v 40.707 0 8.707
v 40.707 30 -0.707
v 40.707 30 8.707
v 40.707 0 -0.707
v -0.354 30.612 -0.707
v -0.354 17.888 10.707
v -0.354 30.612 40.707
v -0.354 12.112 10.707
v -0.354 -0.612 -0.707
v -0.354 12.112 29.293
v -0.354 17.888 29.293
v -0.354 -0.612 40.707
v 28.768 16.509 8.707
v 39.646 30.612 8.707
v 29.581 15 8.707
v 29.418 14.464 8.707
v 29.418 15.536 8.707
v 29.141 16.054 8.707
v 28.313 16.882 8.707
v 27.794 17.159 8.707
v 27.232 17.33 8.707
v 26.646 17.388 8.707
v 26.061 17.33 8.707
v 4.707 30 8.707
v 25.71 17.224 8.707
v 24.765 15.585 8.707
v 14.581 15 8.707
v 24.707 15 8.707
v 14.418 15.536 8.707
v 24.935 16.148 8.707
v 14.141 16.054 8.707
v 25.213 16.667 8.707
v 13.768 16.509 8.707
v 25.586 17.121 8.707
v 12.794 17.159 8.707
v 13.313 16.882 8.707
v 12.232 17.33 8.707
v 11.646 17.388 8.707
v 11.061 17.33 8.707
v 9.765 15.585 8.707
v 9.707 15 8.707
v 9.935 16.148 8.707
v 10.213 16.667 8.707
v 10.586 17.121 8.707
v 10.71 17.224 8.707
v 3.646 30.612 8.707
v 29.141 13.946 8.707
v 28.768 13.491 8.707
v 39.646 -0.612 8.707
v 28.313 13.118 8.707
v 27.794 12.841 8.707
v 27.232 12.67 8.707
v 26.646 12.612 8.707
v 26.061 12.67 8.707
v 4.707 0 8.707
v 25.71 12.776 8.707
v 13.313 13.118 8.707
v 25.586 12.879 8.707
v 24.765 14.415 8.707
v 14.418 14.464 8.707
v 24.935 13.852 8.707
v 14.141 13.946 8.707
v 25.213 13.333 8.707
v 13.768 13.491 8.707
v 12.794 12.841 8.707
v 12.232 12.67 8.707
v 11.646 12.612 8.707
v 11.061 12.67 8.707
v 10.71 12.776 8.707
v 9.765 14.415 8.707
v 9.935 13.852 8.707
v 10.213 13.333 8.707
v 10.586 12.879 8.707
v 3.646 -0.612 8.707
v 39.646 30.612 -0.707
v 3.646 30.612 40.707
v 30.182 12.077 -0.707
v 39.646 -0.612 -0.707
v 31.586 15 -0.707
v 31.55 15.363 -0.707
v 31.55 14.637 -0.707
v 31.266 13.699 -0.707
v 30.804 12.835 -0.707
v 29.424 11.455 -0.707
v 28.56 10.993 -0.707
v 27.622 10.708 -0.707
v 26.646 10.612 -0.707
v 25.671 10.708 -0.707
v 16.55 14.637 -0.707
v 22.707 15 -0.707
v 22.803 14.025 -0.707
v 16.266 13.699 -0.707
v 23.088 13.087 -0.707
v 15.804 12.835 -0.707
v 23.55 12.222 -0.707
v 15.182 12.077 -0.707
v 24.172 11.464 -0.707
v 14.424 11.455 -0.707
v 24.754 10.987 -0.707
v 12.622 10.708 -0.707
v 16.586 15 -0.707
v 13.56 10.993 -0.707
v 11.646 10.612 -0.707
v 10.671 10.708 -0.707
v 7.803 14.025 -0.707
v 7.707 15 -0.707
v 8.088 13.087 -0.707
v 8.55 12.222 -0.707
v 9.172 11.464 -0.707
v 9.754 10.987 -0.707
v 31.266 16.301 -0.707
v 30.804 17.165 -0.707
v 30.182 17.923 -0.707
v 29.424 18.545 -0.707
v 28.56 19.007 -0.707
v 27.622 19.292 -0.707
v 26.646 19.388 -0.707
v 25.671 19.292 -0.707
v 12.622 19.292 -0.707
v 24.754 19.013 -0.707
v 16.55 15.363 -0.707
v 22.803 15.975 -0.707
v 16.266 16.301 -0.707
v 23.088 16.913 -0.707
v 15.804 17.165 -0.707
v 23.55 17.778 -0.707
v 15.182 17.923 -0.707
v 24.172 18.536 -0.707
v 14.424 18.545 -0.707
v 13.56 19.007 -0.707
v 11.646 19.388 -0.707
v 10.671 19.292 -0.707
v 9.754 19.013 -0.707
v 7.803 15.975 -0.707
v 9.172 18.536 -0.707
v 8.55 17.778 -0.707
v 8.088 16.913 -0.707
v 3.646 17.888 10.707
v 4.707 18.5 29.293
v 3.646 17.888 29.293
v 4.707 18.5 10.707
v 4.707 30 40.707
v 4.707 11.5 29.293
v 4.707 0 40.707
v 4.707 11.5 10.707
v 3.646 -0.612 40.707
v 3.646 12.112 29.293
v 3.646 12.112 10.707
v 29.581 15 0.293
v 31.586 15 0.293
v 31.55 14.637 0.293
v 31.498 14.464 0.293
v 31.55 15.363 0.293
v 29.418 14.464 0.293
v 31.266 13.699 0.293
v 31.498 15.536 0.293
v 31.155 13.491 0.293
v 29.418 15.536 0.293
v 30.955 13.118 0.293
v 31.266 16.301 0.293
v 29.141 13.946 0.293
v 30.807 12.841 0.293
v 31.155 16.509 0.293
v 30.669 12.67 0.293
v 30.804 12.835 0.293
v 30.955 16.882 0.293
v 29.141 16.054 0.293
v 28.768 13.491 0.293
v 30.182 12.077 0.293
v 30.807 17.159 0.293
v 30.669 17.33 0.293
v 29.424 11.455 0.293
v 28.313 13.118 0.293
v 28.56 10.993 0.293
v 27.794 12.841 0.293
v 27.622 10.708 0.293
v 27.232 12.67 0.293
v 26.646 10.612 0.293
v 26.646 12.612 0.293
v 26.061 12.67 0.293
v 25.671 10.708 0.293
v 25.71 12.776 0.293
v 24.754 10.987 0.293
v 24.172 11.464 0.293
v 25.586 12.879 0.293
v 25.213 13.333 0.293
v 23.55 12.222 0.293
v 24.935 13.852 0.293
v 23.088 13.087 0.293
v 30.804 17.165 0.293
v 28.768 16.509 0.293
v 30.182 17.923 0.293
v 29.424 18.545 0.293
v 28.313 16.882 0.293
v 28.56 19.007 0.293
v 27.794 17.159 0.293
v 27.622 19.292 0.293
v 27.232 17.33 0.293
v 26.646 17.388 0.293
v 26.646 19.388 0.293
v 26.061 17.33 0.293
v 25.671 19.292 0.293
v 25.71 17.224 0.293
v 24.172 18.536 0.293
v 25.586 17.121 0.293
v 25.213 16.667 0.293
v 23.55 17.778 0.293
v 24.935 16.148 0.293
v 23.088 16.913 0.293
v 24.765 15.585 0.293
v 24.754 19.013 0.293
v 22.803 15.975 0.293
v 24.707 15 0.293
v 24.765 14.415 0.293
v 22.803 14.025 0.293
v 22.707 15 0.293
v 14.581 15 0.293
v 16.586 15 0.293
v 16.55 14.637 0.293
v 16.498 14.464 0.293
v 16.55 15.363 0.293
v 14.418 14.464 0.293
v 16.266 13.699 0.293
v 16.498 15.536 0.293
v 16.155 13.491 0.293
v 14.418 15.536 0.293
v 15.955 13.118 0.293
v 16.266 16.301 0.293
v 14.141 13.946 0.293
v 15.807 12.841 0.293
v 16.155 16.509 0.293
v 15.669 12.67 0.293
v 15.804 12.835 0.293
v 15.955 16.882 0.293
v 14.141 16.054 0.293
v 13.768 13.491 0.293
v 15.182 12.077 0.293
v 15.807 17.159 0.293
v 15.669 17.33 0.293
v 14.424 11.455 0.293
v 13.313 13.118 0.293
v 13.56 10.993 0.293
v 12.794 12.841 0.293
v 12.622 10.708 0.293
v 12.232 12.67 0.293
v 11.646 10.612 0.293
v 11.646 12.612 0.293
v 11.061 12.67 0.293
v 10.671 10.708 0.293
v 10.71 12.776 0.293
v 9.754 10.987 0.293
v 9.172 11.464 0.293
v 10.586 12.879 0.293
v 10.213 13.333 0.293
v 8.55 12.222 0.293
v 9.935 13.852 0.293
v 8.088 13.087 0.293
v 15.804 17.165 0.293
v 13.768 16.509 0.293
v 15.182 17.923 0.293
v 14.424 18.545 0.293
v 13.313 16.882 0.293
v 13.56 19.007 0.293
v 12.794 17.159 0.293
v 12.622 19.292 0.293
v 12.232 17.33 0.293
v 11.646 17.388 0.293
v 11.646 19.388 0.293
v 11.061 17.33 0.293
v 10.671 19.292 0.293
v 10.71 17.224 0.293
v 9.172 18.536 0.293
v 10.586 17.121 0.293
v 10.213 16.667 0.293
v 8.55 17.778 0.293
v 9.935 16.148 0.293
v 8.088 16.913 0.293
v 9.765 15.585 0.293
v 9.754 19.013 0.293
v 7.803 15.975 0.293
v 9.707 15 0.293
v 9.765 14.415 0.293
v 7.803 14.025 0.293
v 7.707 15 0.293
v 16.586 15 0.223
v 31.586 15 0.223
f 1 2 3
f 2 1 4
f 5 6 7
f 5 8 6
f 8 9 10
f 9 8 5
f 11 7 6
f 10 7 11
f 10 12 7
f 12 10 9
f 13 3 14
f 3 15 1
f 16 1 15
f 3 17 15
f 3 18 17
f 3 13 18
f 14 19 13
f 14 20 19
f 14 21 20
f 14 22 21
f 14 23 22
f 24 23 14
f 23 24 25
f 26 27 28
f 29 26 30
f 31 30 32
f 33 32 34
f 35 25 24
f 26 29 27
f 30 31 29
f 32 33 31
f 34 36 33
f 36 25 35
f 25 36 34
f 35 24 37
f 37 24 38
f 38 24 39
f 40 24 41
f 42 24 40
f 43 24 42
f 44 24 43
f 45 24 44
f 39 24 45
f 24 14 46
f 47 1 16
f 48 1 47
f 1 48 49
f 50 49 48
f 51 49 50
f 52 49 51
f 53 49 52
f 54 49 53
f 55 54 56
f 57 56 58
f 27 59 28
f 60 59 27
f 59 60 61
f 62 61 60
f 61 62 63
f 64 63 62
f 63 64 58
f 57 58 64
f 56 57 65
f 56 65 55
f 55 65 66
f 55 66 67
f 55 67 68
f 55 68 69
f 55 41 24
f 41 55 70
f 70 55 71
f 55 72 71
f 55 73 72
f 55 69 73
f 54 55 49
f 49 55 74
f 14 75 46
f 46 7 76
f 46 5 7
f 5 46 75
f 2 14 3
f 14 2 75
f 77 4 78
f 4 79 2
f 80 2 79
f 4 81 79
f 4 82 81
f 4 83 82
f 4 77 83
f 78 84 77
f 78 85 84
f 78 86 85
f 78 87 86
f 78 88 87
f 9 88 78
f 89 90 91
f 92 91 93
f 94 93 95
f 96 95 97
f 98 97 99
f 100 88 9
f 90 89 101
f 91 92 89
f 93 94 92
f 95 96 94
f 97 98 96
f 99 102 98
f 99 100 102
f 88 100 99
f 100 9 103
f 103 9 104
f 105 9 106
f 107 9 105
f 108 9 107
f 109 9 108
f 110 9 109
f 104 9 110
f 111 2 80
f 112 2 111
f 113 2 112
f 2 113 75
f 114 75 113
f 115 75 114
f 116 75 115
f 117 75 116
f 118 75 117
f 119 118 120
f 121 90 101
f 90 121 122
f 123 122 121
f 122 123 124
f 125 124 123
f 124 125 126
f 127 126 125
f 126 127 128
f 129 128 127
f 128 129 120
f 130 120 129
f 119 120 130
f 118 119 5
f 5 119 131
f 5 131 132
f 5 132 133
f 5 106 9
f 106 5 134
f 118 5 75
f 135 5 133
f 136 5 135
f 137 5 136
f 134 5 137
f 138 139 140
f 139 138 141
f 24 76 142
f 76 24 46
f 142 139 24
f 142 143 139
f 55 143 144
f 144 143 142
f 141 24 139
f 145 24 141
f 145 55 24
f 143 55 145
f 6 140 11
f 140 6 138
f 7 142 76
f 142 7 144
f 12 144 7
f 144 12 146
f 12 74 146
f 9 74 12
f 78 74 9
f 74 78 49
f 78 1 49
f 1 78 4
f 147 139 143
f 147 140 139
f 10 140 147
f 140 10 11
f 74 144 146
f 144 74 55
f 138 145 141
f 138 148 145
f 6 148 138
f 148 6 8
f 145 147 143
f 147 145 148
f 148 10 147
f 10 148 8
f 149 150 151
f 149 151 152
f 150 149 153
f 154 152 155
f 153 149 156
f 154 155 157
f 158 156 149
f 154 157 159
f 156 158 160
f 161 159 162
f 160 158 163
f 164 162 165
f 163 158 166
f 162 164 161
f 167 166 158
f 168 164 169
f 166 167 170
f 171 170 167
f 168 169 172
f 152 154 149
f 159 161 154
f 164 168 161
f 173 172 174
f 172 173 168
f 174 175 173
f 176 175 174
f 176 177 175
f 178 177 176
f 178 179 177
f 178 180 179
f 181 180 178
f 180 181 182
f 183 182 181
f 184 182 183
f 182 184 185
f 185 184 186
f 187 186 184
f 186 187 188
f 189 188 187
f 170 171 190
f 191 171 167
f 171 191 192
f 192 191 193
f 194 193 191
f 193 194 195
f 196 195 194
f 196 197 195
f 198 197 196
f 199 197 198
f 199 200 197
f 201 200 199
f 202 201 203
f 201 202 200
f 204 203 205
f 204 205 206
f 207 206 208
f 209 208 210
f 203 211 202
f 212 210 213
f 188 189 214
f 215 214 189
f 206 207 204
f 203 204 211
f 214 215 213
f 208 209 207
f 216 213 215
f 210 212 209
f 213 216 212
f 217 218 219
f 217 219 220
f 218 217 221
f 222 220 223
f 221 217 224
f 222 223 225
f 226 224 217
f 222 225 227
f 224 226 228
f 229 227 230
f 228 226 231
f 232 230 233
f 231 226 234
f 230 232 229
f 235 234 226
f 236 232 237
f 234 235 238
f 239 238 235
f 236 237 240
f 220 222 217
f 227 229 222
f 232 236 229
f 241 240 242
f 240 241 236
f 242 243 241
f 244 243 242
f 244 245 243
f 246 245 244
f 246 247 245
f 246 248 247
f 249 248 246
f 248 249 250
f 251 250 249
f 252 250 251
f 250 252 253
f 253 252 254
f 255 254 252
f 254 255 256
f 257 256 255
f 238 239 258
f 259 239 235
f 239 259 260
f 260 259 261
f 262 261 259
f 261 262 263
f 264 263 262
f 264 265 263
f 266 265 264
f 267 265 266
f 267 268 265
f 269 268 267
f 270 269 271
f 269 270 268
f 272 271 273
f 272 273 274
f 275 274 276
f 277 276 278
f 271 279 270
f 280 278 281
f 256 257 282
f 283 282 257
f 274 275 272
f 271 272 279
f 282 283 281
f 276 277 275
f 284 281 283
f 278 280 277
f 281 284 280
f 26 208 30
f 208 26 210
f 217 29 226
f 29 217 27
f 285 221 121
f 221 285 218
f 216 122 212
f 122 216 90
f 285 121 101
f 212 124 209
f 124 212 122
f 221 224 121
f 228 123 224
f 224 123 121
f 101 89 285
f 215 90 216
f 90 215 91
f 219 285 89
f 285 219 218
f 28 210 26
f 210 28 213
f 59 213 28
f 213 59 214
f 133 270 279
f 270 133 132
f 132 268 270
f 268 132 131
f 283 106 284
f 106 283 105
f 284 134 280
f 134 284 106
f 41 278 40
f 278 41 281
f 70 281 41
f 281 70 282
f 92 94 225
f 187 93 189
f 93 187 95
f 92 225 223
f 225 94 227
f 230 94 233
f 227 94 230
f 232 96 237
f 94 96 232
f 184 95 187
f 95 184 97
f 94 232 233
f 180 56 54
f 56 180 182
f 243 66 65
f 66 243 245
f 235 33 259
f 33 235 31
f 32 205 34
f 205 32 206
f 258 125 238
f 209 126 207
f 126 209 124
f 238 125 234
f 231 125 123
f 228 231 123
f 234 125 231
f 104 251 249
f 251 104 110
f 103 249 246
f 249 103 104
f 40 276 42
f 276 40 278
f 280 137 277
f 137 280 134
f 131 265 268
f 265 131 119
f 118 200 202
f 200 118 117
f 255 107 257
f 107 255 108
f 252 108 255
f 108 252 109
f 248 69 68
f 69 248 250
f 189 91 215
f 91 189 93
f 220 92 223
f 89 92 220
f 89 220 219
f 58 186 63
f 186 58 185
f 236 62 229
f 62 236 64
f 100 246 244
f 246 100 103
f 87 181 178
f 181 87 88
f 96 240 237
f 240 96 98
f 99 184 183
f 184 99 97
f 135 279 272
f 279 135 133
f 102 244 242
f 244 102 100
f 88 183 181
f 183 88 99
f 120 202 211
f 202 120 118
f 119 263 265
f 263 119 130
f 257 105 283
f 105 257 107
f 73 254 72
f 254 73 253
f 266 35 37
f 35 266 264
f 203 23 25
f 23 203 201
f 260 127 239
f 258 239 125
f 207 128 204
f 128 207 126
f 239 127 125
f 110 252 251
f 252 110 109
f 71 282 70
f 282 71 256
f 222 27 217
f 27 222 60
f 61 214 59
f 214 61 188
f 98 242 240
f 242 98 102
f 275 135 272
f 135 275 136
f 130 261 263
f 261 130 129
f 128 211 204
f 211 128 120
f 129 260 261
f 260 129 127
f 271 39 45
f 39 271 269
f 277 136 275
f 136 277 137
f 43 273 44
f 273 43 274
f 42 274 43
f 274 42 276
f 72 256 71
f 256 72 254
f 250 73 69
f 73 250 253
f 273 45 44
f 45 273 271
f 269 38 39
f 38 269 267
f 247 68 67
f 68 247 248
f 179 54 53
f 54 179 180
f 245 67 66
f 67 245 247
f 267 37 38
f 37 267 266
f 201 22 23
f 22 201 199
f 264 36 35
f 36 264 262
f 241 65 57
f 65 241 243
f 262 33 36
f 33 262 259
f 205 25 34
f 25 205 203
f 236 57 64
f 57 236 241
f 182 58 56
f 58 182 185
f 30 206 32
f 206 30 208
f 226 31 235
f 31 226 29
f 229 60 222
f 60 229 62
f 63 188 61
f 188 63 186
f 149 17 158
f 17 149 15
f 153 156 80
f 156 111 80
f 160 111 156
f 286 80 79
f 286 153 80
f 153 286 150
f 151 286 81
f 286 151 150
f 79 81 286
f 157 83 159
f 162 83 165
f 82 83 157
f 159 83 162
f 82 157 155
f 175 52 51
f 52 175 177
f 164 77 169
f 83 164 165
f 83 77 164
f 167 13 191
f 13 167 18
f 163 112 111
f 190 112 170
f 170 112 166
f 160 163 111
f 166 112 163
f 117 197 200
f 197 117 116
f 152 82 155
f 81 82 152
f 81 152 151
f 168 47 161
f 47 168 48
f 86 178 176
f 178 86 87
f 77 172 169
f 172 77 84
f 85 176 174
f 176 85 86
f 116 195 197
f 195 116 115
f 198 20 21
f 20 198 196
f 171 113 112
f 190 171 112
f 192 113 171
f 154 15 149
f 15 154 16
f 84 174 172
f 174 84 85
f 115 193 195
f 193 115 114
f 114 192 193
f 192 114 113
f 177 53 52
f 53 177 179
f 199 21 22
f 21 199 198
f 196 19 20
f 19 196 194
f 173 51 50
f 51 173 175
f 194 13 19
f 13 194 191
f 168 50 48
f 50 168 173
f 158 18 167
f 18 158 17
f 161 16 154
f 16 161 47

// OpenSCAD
// L-shaped bicycle bracket with holes

// Dimensions
length = 40;  
width = 30;       
height = 8;      
bolt_hole_diameter = 6;
slot_width = 7;
slot_length = 20;
bolt_hole_radius = bolt_hole_diameter/2;


// bottom bracket
module bottom_bracket() {
    translate([0, 0, 0])
    cube([length, width, height]);
}

module hole() {
    union() {
        cylinder(h=height+2, r=bolt_hole_radius, $fn=32);
        //inbuktning for mutters
        cylinder(h=2, r=bolt_hole_radius+2, $fn=32);
    }
}

// Subtract bolt holes from bottom piece
module bottom_holes() {
    // First bolt hole (centered along length, closer to one side)
    translate([12, width/2, -1])
        hole();
    
    // Second bolt hole (centered along length, toward other side)
    translate([27, width/2, -1])
        hole();
}

module bottom_bracket_w_holes() {
    difference() {
        bottom_bracket();
        bottom_holes();
    }
}


//Vertical flat bracket
vertical_bracket_height = height/2;
module bracket() {
    cube([length, width, vertical_bracket_height]);
}

// Elongated slot (centered on the bracket)
module slot() {
    translate([length/2 - slot_length/2, width/2 - slot_width/2, -1])
        cube([slot_length, slot_width, vertical_bracket_height + 2]);
}
//slot();
// Final bracket with slot
module vertical_bracket() {
    rotate([0,-90,0])
        translate([0, 0, -vertical_bracket_height])
            difference() {
                bracket();
                slot();
            }
}

//vertical_bracket();
//bottom_bracket_w_holes();

// Final L bracket
module final_l_bracket() {
   union() {
       vertical_bracket();
       bottom_bracket_w_holes();
   }
}

minkowski() {
    final_l_bracket();
    sphere(r=1, $fn=2);
}
